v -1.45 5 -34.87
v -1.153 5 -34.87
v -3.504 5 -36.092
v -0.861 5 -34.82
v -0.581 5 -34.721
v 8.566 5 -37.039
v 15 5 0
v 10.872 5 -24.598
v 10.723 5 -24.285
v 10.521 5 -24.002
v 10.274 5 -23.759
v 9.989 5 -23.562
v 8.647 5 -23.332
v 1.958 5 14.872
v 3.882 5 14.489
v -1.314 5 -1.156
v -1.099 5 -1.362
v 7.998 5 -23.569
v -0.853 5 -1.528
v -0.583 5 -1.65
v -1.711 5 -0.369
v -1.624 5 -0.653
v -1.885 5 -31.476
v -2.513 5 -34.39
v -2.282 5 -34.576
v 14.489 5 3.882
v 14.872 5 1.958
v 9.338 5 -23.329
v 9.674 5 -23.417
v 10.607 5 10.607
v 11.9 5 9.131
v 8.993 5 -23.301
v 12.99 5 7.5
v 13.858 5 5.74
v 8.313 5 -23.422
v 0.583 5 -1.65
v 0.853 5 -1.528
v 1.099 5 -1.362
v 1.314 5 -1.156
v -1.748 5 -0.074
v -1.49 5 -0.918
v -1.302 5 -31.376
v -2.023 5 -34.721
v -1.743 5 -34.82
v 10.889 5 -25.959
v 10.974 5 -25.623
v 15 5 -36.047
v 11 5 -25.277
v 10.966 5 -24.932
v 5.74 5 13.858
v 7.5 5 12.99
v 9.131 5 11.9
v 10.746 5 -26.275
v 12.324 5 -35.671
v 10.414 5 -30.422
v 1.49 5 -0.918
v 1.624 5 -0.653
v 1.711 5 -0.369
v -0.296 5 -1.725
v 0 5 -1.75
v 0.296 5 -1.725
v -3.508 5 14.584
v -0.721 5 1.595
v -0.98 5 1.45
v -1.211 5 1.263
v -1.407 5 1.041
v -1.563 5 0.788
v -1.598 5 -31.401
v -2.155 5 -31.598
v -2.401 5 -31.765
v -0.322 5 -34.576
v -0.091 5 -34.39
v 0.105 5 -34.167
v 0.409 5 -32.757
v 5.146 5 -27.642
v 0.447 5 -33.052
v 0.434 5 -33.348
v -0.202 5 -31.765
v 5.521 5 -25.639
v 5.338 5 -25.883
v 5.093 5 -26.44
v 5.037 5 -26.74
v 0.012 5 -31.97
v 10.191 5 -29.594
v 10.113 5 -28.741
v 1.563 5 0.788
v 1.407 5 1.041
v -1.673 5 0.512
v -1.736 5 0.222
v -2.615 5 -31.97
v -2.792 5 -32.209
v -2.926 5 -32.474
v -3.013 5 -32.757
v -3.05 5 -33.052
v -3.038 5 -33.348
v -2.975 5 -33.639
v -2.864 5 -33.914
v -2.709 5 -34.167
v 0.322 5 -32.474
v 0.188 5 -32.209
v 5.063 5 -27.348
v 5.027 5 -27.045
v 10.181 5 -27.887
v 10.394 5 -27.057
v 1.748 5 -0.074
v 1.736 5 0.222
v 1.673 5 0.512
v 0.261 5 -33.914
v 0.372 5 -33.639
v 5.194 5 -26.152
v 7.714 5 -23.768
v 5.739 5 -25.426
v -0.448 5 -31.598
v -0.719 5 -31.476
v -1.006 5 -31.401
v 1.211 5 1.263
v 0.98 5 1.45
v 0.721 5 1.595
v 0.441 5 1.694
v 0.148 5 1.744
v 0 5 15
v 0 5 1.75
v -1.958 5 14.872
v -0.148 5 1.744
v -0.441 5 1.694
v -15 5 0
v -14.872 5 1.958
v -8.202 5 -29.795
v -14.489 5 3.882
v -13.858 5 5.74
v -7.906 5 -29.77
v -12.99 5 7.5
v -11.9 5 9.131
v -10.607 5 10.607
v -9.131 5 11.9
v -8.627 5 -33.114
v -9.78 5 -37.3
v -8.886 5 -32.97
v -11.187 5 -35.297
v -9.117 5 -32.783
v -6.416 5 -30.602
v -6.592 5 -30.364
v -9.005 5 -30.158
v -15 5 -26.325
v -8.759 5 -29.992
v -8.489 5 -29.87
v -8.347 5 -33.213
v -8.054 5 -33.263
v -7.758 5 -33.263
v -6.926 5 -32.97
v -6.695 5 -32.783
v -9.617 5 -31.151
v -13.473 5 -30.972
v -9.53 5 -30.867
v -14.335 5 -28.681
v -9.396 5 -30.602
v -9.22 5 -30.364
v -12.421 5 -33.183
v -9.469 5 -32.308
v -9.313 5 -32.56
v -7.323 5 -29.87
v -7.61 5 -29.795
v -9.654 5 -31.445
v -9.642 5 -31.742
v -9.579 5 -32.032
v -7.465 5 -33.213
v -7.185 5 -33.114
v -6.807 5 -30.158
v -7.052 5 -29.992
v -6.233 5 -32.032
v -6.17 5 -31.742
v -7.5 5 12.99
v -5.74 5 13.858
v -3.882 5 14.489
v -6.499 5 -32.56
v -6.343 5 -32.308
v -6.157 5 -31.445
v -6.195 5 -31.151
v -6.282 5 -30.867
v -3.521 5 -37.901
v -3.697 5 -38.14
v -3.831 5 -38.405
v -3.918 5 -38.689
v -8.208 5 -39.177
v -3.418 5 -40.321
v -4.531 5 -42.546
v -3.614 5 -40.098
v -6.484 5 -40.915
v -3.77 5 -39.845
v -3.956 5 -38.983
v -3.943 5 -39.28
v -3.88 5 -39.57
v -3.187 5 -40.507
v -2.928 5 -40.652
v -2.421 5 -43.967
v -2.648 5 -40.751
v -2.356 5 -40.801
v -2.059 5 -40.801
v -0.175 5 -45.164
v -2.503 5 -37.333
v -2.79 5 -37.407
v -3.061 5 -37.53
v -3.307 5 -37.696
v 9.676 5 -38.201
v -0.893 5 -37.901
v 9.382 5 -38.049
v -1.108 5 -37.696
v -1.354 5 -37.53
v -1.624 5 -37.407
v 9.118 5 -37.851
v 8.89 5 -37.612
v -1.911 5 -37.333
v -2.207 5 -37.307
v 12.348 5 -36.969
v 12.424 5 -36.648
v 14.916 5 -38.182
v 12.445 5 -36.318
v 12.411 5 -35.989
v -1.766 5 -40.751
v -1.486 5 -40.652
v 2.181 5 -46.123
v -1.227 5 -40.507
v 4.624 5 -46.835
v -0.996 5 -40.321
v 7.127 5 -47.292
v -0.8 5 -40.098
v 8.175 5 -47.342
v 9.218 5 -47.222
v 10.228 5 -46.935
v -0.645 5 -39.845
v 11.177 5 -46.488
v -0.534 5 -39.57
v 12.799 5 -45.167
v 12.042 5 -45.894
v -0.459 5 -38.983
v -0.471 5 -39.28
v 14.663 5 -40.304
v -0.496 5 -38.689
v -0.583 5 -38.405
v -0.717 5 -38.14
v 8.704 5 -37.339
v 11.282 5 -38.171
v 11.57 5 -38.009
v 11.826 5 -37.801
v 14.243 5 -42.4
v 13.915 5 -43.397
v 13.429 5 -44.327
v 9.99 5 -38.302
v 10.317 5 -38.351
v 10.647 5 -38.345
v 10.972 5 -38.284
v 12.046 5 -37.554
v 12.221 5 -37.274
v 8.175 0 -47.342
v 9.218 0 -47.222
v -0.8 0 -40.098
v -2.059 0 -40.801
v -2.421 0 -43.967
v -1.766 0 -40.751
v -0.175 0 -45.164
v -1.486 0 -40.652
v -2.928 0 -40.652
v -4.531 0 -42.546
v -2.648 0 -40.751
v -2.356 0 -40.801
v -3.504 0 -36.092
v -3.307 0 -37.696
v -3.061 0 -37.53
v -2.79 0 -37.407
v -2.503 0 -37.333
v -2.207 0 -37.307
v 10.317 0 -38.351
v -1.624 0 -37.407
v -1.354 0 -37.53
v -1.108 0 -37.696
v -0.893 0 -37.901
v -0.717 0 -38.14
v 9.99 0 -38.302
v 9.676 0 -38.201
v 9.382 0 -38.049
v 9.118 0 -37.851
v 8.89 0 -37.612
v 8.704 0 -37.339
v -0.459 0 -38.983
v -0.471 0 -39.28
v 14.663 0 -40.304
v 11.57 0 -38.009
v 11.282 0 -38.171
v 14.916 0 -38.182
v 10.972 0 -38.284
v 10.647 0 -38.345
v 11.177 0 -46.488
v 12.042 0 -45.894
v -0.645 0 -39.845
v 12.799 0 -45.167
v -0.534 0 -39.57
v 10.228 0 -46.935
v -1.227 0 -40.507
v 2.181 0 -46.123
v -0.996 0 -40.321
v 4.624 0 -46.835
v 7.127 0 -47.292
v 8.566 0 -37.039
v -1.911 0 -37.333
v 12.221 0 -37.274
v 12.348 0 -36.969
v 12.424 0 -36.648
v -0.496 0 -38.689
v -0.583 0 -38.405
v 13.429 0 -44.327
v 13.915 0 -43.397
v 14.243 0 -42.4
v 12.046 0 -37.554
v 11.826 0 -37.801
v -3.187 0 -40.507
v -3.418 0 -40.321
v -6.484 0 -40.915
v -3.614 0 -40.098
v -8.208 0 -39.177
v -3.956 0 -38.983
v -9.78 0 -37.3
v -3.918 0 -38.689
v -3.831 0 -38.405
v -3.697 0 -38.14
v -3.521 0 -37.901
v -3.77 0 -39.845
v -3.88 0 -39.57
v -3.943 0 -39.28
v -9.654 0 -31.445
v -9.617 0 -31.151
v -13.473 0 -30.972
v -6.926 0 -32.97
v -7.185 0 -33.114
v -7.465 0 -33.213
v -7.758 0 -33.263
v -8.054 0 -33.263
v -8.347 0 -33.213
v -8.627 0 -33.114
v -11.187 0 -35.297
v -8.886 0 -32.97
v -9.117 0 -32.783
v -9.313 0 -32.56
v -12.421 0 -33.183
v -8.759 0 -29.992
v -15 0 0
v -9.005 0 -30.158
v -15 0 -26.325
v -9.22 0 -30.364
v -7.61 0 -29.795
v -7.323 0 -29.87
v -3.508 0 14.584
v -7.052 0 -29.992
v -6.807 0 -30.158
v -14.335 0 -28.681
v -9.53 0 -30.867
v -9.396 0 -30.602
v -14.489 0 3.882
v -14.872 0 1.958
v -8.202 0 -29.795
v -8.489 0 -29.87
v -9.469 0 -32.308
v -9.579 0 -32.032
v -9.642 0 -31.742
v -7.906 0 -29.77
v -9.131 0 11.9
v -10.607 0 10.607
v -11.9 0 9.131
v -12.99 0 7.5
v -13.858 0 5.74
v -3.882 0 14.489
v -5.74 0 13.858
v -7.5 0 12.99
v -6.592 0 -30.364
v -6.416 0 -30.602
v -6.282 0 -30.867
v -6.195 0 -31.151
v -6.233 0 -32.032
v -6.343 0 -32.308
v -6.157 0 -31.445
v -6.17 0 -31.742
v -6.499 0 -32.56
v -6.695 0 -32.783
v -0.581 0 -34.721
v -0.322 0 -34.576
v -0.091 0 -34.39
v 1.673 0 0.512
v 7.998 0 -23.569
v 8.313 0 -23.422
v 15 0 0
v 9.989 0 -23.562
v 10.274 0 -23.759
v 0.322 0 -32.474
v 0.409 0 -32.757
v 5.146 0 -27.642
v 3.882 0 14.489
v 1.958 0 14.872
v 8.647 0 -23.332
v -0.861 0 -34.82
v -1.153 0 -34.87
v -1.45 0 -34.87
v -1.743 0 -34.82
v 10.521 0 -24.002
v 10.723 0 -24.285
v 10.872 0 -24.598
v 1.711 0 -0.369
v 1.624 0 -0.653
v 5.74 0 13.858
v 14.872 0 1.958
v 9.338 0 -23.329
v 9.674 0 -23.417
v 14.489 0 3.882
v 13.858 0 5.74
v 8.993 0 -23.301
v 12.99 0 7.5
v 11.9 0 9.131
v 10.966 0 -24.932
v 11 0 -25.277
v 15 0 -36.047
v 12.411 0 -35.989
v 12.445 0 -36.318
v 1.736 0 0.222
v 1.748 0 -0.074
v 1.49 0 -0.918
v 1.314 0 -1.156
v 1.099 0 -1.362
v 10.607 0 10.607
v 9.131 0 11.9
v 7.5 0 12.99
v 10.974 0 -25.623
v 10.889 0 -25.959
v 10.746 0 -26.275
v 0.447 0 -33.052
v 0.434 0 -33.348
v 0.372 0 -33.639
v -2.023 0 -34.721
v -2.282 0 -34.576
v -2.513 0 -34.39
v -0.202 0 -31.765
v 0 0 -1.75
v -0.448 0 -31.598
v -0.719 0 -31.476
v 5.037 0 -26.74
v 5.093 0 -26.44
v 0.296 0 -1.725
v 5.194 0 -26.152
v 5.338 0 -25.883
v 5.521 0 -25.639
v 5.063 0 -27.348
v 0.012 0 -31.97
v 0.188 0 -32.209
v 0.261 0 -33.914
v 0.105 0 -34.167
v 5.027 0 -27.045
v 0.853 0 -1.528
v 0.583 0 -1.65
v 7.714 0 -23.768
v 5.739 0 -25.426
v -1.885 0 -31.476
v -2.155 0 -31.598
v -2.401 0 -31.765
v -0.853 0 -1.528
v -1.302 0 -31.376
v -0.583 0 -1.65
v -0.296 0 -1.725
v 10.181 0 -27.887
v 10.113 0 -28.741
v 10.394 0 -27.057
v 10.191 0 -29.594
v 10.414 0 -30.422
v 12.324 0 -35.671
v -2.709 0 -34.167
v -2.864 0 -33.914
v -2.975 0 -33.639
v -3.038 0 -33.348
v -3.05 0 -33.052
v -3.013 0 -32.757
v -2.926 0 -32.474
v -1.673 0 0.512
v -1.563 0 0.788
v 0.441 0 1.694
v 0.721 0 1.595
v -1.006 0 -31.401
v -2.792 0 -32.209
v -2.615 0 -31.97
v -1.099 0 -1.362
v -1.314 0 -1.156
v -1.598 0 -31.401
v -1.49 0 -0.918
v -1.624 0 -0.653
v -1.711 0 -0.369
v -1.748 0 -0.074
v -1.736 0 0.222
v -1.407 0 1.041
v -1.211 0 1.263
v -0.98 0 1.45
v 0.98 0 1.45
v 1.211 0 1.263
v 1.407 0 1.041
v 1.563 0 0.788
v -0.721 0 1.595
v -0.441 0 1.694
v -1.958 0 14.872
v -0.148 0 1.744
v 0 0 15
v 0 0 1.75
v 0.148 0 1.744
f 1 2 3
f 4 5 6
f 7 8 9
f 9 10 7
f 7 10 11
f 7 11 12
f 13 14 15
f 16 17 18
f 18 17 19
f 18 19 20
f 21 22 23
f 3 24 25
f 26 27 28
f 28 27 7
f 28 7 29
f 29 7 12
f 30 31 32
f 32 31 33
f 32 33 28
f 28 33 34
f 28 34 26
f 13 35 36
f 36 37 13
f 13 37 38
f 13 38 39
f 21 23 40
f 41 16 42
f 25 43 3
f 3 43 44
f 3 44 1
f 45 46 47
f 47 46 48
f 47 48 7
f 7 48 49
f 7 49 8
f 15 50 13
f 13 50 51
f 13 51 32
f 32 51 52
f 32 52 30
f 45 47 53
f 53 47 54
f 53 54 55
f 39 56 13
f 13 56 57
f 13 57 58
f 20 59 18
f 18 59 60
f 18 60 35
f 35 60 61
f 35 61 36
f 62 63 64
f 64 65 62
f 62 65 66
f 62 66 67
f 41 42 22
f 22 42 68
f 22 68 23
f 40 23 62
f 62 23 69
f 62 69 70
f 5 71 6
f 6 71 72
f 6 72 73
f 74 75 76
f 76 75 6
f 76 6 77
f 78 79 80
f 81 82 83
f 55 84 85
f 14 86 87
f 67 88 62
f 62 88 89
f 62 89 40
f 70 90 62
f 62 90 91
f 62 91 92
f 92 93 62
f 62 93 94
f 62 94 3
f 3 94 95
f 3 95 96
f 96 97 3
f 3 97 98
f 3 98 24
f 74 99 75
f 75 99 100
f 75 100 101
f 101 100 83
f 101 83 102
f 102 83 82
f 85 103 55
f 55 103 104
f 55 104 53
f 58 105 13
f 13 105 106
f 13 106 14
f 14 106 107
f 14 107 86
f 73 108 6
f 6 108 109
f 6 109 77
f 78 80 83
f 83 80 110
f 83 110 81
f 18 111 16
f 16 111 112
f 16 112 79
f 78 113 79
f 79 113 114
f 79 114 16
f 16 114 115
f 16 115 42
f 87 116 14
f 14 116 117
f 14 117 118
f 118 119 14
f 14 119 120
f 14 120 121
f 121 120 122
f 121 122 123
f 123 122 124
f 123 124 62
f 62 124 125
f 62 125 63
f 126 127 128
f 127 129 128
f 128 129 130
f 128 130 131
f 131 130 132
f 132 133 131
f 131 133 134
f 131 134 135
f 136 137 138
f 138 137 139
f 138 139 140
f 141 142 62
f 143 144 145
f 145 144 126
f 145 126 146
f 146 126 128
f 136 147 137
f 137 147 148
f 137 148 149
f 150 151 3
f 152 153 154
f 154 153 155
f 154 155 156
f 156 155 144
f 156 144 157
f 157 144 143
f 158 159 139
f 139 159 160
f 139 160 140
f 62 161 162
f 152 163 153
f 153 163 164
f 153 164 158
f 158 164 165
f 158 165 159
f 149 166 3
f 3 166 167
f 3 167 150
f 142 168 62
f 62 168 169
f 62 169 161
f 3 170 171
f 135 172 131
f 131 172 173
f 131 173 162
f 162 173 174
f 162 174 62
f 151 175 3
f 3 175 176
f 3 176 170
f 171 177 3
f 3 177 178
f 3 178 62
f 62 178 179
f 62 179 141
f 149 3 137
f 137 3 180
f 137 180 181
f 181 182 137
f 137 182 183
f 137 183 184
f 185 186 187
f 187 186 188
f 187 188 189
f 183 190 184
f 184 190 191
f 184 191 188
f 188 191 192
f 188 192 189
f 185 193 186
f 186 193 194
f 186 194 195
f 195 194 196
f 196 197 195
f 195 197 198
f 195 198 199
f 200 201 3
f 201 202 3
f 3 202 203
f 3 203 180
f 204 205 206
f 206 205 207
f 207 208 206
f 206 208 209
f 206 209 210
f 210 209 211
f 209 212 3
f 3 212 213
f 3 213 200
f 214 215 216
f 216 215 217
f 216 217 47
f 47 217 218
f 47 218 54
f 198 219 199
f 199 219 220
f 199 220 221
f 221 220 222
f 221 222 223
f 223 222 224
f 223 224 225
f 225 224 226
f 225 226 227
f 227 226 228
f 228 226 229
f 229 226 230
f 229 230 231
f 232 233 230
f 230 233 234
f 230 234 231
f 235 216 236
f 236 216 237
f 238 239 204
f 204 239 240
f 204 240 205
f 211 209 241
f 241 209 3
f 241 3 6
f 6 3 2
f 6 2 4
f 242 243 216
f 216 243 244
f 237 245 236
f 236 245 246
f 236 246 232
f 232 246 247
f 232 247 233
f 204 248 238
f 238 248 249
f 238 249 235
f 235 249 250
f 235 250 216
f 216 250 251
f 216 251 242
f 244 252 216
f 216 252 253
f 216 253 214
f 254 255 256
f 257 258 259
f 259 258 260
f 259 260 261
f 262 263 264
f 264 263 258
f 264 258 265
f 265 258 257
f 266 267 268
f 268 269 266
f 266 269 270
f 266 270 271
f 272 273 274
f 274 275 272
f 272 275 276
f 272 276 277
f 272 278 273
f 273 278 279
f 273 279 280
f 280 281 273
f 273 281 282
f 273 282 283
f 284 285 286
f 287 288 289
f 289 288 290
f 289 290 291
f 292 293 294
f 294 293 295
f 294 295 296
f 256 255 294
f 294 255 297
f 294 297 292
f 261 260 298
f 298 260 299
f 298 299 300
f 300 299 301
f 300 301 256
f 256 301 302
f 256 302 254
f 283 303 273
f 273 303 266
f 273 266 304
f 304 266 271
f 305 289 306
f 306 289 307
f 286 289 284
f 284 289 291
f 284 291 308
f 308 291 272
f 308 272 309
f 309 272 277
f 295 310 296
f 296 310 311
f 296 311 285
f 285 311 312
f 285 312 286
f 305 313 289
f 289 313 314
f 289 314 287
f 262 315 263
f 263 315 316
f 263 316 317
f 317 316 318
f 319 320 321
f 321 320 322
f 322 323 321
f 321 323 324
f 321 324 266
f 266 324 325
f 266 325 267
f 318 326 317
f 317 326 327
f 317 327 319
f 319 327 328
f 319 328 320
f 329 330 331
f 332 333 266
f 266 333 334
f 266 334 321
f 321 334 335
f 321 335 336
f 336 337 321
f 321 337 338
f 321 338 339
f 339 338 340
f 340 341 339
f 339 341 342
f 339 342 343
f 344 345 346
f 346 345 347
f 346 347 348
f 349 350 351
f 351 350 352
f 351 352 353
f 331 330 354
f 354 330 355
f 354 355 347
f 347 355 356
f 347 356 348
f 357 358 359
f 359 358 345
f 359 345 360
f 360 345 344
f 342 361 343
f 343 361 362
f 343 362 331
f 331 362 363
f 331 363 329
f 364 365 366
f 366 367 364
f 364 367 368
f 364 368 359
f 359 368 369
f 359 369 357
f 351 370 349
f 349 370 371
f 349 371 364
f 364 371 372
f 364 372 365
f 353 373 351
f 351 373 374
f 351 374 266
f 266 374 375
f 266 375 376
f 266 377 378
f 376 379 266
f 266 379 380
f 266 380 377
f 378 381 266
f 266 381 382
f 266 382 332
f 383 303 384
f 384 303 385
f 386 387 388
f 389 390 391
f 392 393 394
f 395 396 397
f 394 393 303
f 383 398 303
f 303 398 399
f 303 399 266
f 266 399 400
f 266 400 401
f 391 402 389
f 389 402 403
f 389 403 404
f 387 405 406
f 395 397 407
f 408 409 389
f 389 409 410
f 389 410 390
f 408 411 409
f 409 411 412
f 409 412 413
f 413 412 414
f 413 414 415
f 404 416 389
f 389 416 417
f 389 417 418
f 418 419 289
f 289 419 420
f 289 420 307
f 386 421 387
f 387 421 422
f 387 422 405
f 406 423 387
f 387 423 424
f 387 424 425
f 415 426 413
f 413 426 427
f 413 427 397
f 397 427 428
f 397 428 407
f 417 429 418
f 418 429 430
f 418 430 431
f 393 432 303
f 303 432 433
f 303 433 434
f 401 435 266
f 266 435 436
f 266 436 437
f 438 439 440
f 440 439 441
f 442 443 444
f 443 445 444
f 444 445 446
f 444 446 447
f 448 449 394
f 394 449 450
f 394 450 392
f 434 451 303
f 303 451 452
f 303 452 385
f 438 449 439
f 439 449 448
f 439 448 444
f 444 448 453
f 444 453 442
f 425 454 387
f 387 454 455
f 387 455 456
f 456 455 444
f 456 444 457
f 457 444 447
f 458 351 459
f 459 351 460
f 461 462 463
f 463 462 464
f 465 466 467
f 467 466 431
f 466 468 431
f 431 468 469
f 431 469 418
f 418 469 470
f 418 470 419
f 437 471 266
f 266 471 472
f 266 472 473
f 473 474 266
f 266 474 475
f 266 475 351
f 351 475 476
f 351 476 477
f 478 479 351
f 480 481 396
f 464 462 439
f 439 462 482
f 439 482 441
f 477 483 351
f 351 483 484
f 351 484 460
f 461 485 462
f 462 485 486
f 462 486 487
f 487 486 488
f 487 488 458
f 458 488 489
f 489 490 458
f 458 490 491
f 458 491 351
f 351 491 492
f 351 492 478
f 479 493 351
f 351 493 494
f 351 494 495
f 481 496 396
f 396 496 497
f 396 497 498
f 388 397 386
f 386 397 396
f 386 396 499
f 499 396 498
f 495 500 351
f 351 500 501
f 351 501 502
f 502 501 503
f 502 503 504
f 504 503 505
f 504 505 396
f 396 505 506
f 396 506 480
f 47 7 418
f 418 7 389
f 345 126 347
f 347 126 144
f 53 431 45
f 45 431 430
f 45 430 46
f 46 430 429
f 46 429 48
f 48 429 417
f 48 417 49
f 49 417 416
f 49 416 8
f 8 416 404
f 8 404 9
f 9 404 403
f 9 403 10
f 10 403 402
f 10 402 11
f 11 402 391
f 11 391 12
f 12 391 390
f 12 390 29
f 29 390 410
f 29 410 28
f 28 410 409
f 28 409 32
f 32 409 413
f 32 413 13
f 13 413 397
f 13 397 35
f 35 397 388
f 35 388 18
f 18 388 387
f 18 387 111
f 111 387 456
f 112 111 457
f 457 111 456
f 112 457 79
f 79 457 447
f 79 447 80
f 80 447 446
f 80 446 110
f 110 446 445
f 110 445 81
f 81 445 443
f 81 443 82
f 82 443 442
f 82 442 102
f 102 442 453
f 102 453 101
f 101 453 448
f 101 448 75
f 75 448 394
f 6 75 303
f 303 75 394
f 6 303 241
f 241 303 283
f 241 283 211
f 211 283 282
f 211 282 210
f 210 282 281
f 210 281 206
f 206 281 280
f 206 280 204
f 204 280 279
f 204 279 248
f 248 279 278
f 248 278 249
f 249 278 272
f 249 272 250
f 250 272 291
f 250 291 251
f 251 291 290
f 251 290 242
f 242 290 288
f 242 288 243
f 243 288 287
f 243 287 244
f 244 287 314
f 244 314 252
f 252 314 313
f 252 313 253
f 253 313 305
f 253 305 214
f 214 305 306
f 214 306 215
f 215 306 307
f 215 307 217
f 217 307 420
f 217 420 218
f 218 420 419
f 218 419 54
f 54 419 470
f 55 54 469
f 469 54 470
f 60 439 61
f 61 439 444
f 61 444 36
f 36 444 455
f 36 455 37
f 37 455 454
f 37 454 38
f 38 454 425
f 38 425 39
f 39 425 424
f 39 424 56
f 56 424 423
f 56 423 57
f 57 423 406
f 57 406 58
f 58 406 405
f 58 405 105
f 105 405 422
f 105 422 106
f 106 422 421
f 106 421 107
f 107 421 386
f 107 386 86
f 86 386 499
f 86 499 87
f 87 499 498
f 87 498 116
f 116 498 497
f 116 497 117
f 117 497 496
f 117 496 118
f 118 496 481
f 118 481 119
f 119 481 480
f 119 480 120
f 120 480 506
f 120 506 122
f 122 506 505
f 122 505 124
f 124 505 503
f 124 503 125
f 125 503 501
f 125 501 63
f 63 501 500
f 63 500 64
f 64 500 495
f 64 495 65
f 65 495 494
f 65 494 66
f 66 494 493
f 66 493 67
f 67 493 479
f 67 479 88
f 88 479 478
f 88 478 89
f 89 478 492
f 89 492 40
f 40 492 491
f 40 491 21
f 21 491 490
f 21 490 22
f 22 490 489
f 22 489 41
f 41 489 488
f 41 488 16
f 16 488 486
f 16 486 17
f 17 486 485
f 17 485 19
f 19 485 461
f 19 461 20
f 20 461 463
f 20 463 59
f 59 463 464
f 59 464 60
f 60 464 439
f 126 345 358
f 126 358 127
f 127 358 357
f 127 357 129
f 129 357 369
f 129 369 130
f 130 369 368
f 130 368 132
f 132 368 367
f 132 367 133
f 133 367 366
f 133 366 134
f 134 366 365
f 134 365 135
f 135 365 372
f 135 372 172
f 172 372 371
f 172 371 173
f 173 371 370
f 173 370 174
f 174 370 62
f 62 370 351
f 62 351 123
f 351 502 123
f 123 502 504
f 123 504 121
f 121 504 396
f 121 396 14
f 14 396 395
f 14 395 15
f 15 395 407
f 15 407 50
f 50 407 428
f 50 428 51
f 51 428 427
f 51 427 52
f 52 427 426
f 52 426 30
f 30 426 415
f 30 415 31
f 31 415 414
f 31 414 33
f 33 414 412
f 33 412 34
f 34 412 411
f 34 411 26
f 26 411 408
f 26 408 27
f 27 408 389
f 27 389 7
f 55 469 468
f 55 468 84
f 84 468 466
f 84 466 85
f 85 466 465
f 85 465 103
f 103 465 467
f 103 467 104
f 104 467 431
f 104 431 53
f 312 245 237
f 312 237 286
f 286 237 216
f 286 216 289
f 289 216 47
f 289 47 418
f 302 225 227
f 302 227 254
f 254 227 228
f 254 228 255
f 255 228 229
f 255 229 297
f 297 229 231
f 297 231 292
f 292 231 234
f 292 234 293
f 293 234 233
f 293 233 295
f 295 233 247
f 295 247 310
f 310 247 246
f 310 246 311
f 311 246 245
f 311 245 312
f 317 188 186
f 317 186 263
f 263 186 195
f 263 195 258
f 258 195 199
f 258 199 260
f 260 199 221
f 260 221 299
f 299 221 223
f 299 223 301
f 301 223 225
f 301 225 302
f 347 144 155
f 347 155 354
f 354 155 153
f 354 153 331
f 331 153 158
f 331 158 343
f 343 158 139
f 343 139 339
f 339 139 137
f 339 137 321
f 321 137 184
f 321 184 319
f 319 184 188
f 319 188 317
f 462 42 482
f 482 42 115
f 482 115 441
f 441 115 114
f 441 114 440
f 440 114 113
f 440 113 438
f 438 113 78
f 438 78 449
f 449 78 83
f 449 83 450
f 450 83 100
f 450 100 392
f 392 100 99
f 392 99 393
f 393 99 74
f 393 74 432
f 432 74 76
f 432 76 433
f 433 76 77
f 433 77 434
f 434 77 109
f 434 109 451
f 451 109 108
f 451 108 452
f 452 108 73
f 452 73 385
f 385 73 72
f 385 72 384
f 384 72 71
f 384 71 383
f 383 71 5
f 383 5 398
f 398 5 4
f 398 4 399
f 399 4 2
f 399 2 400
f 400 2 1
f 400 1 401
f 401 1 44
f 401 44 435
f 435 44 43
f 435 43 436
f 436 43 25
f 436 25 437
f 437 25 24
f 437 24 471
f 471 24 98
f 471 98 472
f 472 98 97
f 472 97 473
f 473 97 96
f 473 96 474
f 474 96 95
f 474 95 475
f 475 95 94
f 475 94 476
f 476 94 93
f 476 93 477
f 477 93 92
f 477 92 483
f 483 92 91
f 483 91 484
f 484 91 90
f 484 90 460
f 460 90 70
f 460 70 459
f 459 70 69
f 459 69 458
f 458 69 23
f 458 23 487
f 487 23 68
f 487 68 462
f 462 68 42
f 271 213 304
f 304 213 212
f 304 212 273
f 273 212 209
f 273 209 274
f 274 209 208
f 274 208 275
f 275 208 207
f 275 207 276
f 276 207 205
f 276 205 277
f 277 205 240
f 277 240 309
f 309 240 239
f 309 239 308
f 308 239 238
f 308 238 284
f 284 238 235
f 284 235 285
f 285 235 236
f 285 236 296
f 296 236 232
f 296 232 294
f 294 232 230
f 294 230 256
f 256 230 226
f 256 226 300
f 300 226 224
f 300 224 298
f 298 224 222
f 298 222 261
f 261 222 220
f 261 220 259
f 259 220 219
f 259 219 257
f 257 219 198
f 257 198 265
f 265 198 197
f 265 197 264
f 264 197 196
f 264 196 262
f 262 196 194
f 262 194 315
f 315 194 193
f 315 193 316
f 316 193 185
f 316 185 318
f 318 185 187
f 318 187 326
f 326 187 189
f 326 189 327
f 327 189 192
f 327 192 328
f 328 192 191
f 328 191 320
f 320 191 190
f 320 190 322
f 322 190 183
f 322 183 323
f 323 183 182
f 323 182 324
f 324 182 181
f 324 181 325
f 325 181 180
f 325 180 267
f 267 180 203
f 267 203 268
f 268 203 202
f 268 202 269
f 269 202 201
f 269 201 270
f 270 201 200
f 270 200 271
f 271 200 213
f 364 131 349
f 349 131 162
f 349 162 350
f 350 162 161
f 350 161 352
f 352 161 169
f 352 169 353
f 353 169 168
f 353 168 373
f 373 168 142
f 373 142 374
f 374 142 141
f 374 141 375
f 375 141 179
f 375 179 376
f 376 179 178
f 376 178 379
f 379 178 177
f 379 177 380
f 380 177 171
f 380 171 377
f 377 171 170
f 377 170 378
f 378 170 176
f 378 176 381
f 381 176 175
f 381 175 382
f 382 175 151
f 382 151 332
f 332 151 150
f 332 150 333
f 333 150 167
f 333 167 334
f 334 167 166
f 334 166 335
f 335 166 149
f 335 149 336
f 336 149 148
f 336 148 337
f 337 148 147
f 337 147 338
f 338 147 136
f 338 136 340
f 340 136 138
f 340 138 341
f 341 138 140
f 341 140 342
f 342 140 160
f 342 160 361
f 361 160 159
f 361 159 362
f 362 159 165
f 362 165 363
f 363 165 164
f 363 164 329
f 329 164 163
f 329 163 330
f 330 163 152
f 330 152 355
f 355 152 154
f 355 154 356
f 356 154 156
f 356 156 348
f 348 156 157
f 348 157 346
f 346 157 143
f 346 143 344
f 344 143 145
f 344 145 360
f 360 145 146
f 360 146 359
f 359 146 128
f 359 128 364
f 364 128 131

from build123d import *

# Parameters (mm, degrees)
SKETCH1_R           = 1.75
BOSS_EXTRUDE1_DEPTH = 5
FILLET1_R           = 5
CUT_EXTRUDE1_DEPTH  = 10
SKETCH3_R           = 1.75
CUT_EXTRUDE2_DEPTH  = 10


with BuildPart() as part:
    # Sketch1 → Boss-Extrude1 (new body)
    with BuildSketch(Plane(origin=(0, 0, 0), x_dir=(1, 0, 0), z_dir=(0, 1, 0))):
        with BuildLine():
            Line((-15, 0), (-15, 50))
            ThreePointArc((-15, 50), (0, 65), (15, 50))
            Line((15, 50), (15, 0))
            ThreePointArc((15, 0), (0, -15), (-15, 0))
        make_face()
        Circle(SKETCH1_R, mode=Mode.SUBTRACT)
        with BuildLine():
            Line((12.324500118, 35.6706981), (9.383268849, 27.589731606))
            Line((9.383268849, 27.589731606), (10.285575219, 26.832606664))
            ThreePointArc((10.285575219, 26.832606664), (10.532088886, 24.014942558), (7.714424781, 23.768428891))
            Line((7.714424781, 23.768428891), (5.739338223, 25.425723293))
            ThreePointArc((5.739338223, 25.425723293), (5.09306179, 26.440174089), (5.145528201, 27.641852466))
            Line((5.145528201, 27.641852466), (8.565729634, 37.038778674))
            ThreePointArc((8.565729634, 37.038778674), (11.129155163, 38.234123628), (12.324500118, 35.6706981))
        make_face(mode=Mode.SUBTRACT)
    extrude(amount=BOSS_EXTRUDE1_DEPTH)

    # Fillet1
    fillet1_edges = [part.edges().sort_by_distance(p)[0] for p in [
        (9.383268849, 2.5, -27.589731606),
    ]]
    fillet(fillet1_edges, radius=FILLET1_R)

    # Sketch2 → Cut-Extrude1 (cut)
    with BuildSketch(Plane(origin=(0, 5, 0), x_dir=(1, 0, 0), z_dir=(0, 1, 0))):
        with BuildLine():
            Line((-15, 26.324644949), (-40.925594741, 69.238213195))
            Line((-40.925594741, 69.238213195), (-58.771967888, 111.080687023))
            Line((-58.771967888, 111.080687023), (39.28439299, 102.825794629))
            Line((39.28439299, 102.825794629), (15, 36.046990739))
            ThreePointArc((15, 36.046990739), (14.81014445, 39.245839168), (14.243243524, 42.399773179))
            ThreePointArc((14.243243524, 42.399773179), (11.621838426, 46.208407589), (7.127072402, 47.292169164))
            ThreePointArc((7.127072402, 47.292169164), (-0.175202385, 45.163669538), (-6.484026655, 40.9148504))
            ThreePointArc((-6.484026655, 40.9148504), (-11.826766868, 34.252893813), (-15, 26.324644949))
        make_face()
    extrude(amount=-CUT_EXTRUDE1_DEPTH, mode=Mode.SUBTRACT)

    # Sketch3 → Cut-Extrude2 (cut)
    with BuildSketch(Plane(origin=(0, 5, 0), x_dir=(1, 0, 0), z_dir=(0, 1, 0))):
        with Locations((-1.301778952, 33.126107378)):
            Circle(SKETCH3_R)
        with Locations((-2.207127715, 39.057409395)):
            Circle(SKETCH3_R)
        with Locations((-7.905919506, 31.519764857)):
            Circle(SKETCH3_R)
    extrude(amount=-CUT_EXTRUDE2_DEPTH, mode=Mode.SUBTRACT)


solid = part.part
